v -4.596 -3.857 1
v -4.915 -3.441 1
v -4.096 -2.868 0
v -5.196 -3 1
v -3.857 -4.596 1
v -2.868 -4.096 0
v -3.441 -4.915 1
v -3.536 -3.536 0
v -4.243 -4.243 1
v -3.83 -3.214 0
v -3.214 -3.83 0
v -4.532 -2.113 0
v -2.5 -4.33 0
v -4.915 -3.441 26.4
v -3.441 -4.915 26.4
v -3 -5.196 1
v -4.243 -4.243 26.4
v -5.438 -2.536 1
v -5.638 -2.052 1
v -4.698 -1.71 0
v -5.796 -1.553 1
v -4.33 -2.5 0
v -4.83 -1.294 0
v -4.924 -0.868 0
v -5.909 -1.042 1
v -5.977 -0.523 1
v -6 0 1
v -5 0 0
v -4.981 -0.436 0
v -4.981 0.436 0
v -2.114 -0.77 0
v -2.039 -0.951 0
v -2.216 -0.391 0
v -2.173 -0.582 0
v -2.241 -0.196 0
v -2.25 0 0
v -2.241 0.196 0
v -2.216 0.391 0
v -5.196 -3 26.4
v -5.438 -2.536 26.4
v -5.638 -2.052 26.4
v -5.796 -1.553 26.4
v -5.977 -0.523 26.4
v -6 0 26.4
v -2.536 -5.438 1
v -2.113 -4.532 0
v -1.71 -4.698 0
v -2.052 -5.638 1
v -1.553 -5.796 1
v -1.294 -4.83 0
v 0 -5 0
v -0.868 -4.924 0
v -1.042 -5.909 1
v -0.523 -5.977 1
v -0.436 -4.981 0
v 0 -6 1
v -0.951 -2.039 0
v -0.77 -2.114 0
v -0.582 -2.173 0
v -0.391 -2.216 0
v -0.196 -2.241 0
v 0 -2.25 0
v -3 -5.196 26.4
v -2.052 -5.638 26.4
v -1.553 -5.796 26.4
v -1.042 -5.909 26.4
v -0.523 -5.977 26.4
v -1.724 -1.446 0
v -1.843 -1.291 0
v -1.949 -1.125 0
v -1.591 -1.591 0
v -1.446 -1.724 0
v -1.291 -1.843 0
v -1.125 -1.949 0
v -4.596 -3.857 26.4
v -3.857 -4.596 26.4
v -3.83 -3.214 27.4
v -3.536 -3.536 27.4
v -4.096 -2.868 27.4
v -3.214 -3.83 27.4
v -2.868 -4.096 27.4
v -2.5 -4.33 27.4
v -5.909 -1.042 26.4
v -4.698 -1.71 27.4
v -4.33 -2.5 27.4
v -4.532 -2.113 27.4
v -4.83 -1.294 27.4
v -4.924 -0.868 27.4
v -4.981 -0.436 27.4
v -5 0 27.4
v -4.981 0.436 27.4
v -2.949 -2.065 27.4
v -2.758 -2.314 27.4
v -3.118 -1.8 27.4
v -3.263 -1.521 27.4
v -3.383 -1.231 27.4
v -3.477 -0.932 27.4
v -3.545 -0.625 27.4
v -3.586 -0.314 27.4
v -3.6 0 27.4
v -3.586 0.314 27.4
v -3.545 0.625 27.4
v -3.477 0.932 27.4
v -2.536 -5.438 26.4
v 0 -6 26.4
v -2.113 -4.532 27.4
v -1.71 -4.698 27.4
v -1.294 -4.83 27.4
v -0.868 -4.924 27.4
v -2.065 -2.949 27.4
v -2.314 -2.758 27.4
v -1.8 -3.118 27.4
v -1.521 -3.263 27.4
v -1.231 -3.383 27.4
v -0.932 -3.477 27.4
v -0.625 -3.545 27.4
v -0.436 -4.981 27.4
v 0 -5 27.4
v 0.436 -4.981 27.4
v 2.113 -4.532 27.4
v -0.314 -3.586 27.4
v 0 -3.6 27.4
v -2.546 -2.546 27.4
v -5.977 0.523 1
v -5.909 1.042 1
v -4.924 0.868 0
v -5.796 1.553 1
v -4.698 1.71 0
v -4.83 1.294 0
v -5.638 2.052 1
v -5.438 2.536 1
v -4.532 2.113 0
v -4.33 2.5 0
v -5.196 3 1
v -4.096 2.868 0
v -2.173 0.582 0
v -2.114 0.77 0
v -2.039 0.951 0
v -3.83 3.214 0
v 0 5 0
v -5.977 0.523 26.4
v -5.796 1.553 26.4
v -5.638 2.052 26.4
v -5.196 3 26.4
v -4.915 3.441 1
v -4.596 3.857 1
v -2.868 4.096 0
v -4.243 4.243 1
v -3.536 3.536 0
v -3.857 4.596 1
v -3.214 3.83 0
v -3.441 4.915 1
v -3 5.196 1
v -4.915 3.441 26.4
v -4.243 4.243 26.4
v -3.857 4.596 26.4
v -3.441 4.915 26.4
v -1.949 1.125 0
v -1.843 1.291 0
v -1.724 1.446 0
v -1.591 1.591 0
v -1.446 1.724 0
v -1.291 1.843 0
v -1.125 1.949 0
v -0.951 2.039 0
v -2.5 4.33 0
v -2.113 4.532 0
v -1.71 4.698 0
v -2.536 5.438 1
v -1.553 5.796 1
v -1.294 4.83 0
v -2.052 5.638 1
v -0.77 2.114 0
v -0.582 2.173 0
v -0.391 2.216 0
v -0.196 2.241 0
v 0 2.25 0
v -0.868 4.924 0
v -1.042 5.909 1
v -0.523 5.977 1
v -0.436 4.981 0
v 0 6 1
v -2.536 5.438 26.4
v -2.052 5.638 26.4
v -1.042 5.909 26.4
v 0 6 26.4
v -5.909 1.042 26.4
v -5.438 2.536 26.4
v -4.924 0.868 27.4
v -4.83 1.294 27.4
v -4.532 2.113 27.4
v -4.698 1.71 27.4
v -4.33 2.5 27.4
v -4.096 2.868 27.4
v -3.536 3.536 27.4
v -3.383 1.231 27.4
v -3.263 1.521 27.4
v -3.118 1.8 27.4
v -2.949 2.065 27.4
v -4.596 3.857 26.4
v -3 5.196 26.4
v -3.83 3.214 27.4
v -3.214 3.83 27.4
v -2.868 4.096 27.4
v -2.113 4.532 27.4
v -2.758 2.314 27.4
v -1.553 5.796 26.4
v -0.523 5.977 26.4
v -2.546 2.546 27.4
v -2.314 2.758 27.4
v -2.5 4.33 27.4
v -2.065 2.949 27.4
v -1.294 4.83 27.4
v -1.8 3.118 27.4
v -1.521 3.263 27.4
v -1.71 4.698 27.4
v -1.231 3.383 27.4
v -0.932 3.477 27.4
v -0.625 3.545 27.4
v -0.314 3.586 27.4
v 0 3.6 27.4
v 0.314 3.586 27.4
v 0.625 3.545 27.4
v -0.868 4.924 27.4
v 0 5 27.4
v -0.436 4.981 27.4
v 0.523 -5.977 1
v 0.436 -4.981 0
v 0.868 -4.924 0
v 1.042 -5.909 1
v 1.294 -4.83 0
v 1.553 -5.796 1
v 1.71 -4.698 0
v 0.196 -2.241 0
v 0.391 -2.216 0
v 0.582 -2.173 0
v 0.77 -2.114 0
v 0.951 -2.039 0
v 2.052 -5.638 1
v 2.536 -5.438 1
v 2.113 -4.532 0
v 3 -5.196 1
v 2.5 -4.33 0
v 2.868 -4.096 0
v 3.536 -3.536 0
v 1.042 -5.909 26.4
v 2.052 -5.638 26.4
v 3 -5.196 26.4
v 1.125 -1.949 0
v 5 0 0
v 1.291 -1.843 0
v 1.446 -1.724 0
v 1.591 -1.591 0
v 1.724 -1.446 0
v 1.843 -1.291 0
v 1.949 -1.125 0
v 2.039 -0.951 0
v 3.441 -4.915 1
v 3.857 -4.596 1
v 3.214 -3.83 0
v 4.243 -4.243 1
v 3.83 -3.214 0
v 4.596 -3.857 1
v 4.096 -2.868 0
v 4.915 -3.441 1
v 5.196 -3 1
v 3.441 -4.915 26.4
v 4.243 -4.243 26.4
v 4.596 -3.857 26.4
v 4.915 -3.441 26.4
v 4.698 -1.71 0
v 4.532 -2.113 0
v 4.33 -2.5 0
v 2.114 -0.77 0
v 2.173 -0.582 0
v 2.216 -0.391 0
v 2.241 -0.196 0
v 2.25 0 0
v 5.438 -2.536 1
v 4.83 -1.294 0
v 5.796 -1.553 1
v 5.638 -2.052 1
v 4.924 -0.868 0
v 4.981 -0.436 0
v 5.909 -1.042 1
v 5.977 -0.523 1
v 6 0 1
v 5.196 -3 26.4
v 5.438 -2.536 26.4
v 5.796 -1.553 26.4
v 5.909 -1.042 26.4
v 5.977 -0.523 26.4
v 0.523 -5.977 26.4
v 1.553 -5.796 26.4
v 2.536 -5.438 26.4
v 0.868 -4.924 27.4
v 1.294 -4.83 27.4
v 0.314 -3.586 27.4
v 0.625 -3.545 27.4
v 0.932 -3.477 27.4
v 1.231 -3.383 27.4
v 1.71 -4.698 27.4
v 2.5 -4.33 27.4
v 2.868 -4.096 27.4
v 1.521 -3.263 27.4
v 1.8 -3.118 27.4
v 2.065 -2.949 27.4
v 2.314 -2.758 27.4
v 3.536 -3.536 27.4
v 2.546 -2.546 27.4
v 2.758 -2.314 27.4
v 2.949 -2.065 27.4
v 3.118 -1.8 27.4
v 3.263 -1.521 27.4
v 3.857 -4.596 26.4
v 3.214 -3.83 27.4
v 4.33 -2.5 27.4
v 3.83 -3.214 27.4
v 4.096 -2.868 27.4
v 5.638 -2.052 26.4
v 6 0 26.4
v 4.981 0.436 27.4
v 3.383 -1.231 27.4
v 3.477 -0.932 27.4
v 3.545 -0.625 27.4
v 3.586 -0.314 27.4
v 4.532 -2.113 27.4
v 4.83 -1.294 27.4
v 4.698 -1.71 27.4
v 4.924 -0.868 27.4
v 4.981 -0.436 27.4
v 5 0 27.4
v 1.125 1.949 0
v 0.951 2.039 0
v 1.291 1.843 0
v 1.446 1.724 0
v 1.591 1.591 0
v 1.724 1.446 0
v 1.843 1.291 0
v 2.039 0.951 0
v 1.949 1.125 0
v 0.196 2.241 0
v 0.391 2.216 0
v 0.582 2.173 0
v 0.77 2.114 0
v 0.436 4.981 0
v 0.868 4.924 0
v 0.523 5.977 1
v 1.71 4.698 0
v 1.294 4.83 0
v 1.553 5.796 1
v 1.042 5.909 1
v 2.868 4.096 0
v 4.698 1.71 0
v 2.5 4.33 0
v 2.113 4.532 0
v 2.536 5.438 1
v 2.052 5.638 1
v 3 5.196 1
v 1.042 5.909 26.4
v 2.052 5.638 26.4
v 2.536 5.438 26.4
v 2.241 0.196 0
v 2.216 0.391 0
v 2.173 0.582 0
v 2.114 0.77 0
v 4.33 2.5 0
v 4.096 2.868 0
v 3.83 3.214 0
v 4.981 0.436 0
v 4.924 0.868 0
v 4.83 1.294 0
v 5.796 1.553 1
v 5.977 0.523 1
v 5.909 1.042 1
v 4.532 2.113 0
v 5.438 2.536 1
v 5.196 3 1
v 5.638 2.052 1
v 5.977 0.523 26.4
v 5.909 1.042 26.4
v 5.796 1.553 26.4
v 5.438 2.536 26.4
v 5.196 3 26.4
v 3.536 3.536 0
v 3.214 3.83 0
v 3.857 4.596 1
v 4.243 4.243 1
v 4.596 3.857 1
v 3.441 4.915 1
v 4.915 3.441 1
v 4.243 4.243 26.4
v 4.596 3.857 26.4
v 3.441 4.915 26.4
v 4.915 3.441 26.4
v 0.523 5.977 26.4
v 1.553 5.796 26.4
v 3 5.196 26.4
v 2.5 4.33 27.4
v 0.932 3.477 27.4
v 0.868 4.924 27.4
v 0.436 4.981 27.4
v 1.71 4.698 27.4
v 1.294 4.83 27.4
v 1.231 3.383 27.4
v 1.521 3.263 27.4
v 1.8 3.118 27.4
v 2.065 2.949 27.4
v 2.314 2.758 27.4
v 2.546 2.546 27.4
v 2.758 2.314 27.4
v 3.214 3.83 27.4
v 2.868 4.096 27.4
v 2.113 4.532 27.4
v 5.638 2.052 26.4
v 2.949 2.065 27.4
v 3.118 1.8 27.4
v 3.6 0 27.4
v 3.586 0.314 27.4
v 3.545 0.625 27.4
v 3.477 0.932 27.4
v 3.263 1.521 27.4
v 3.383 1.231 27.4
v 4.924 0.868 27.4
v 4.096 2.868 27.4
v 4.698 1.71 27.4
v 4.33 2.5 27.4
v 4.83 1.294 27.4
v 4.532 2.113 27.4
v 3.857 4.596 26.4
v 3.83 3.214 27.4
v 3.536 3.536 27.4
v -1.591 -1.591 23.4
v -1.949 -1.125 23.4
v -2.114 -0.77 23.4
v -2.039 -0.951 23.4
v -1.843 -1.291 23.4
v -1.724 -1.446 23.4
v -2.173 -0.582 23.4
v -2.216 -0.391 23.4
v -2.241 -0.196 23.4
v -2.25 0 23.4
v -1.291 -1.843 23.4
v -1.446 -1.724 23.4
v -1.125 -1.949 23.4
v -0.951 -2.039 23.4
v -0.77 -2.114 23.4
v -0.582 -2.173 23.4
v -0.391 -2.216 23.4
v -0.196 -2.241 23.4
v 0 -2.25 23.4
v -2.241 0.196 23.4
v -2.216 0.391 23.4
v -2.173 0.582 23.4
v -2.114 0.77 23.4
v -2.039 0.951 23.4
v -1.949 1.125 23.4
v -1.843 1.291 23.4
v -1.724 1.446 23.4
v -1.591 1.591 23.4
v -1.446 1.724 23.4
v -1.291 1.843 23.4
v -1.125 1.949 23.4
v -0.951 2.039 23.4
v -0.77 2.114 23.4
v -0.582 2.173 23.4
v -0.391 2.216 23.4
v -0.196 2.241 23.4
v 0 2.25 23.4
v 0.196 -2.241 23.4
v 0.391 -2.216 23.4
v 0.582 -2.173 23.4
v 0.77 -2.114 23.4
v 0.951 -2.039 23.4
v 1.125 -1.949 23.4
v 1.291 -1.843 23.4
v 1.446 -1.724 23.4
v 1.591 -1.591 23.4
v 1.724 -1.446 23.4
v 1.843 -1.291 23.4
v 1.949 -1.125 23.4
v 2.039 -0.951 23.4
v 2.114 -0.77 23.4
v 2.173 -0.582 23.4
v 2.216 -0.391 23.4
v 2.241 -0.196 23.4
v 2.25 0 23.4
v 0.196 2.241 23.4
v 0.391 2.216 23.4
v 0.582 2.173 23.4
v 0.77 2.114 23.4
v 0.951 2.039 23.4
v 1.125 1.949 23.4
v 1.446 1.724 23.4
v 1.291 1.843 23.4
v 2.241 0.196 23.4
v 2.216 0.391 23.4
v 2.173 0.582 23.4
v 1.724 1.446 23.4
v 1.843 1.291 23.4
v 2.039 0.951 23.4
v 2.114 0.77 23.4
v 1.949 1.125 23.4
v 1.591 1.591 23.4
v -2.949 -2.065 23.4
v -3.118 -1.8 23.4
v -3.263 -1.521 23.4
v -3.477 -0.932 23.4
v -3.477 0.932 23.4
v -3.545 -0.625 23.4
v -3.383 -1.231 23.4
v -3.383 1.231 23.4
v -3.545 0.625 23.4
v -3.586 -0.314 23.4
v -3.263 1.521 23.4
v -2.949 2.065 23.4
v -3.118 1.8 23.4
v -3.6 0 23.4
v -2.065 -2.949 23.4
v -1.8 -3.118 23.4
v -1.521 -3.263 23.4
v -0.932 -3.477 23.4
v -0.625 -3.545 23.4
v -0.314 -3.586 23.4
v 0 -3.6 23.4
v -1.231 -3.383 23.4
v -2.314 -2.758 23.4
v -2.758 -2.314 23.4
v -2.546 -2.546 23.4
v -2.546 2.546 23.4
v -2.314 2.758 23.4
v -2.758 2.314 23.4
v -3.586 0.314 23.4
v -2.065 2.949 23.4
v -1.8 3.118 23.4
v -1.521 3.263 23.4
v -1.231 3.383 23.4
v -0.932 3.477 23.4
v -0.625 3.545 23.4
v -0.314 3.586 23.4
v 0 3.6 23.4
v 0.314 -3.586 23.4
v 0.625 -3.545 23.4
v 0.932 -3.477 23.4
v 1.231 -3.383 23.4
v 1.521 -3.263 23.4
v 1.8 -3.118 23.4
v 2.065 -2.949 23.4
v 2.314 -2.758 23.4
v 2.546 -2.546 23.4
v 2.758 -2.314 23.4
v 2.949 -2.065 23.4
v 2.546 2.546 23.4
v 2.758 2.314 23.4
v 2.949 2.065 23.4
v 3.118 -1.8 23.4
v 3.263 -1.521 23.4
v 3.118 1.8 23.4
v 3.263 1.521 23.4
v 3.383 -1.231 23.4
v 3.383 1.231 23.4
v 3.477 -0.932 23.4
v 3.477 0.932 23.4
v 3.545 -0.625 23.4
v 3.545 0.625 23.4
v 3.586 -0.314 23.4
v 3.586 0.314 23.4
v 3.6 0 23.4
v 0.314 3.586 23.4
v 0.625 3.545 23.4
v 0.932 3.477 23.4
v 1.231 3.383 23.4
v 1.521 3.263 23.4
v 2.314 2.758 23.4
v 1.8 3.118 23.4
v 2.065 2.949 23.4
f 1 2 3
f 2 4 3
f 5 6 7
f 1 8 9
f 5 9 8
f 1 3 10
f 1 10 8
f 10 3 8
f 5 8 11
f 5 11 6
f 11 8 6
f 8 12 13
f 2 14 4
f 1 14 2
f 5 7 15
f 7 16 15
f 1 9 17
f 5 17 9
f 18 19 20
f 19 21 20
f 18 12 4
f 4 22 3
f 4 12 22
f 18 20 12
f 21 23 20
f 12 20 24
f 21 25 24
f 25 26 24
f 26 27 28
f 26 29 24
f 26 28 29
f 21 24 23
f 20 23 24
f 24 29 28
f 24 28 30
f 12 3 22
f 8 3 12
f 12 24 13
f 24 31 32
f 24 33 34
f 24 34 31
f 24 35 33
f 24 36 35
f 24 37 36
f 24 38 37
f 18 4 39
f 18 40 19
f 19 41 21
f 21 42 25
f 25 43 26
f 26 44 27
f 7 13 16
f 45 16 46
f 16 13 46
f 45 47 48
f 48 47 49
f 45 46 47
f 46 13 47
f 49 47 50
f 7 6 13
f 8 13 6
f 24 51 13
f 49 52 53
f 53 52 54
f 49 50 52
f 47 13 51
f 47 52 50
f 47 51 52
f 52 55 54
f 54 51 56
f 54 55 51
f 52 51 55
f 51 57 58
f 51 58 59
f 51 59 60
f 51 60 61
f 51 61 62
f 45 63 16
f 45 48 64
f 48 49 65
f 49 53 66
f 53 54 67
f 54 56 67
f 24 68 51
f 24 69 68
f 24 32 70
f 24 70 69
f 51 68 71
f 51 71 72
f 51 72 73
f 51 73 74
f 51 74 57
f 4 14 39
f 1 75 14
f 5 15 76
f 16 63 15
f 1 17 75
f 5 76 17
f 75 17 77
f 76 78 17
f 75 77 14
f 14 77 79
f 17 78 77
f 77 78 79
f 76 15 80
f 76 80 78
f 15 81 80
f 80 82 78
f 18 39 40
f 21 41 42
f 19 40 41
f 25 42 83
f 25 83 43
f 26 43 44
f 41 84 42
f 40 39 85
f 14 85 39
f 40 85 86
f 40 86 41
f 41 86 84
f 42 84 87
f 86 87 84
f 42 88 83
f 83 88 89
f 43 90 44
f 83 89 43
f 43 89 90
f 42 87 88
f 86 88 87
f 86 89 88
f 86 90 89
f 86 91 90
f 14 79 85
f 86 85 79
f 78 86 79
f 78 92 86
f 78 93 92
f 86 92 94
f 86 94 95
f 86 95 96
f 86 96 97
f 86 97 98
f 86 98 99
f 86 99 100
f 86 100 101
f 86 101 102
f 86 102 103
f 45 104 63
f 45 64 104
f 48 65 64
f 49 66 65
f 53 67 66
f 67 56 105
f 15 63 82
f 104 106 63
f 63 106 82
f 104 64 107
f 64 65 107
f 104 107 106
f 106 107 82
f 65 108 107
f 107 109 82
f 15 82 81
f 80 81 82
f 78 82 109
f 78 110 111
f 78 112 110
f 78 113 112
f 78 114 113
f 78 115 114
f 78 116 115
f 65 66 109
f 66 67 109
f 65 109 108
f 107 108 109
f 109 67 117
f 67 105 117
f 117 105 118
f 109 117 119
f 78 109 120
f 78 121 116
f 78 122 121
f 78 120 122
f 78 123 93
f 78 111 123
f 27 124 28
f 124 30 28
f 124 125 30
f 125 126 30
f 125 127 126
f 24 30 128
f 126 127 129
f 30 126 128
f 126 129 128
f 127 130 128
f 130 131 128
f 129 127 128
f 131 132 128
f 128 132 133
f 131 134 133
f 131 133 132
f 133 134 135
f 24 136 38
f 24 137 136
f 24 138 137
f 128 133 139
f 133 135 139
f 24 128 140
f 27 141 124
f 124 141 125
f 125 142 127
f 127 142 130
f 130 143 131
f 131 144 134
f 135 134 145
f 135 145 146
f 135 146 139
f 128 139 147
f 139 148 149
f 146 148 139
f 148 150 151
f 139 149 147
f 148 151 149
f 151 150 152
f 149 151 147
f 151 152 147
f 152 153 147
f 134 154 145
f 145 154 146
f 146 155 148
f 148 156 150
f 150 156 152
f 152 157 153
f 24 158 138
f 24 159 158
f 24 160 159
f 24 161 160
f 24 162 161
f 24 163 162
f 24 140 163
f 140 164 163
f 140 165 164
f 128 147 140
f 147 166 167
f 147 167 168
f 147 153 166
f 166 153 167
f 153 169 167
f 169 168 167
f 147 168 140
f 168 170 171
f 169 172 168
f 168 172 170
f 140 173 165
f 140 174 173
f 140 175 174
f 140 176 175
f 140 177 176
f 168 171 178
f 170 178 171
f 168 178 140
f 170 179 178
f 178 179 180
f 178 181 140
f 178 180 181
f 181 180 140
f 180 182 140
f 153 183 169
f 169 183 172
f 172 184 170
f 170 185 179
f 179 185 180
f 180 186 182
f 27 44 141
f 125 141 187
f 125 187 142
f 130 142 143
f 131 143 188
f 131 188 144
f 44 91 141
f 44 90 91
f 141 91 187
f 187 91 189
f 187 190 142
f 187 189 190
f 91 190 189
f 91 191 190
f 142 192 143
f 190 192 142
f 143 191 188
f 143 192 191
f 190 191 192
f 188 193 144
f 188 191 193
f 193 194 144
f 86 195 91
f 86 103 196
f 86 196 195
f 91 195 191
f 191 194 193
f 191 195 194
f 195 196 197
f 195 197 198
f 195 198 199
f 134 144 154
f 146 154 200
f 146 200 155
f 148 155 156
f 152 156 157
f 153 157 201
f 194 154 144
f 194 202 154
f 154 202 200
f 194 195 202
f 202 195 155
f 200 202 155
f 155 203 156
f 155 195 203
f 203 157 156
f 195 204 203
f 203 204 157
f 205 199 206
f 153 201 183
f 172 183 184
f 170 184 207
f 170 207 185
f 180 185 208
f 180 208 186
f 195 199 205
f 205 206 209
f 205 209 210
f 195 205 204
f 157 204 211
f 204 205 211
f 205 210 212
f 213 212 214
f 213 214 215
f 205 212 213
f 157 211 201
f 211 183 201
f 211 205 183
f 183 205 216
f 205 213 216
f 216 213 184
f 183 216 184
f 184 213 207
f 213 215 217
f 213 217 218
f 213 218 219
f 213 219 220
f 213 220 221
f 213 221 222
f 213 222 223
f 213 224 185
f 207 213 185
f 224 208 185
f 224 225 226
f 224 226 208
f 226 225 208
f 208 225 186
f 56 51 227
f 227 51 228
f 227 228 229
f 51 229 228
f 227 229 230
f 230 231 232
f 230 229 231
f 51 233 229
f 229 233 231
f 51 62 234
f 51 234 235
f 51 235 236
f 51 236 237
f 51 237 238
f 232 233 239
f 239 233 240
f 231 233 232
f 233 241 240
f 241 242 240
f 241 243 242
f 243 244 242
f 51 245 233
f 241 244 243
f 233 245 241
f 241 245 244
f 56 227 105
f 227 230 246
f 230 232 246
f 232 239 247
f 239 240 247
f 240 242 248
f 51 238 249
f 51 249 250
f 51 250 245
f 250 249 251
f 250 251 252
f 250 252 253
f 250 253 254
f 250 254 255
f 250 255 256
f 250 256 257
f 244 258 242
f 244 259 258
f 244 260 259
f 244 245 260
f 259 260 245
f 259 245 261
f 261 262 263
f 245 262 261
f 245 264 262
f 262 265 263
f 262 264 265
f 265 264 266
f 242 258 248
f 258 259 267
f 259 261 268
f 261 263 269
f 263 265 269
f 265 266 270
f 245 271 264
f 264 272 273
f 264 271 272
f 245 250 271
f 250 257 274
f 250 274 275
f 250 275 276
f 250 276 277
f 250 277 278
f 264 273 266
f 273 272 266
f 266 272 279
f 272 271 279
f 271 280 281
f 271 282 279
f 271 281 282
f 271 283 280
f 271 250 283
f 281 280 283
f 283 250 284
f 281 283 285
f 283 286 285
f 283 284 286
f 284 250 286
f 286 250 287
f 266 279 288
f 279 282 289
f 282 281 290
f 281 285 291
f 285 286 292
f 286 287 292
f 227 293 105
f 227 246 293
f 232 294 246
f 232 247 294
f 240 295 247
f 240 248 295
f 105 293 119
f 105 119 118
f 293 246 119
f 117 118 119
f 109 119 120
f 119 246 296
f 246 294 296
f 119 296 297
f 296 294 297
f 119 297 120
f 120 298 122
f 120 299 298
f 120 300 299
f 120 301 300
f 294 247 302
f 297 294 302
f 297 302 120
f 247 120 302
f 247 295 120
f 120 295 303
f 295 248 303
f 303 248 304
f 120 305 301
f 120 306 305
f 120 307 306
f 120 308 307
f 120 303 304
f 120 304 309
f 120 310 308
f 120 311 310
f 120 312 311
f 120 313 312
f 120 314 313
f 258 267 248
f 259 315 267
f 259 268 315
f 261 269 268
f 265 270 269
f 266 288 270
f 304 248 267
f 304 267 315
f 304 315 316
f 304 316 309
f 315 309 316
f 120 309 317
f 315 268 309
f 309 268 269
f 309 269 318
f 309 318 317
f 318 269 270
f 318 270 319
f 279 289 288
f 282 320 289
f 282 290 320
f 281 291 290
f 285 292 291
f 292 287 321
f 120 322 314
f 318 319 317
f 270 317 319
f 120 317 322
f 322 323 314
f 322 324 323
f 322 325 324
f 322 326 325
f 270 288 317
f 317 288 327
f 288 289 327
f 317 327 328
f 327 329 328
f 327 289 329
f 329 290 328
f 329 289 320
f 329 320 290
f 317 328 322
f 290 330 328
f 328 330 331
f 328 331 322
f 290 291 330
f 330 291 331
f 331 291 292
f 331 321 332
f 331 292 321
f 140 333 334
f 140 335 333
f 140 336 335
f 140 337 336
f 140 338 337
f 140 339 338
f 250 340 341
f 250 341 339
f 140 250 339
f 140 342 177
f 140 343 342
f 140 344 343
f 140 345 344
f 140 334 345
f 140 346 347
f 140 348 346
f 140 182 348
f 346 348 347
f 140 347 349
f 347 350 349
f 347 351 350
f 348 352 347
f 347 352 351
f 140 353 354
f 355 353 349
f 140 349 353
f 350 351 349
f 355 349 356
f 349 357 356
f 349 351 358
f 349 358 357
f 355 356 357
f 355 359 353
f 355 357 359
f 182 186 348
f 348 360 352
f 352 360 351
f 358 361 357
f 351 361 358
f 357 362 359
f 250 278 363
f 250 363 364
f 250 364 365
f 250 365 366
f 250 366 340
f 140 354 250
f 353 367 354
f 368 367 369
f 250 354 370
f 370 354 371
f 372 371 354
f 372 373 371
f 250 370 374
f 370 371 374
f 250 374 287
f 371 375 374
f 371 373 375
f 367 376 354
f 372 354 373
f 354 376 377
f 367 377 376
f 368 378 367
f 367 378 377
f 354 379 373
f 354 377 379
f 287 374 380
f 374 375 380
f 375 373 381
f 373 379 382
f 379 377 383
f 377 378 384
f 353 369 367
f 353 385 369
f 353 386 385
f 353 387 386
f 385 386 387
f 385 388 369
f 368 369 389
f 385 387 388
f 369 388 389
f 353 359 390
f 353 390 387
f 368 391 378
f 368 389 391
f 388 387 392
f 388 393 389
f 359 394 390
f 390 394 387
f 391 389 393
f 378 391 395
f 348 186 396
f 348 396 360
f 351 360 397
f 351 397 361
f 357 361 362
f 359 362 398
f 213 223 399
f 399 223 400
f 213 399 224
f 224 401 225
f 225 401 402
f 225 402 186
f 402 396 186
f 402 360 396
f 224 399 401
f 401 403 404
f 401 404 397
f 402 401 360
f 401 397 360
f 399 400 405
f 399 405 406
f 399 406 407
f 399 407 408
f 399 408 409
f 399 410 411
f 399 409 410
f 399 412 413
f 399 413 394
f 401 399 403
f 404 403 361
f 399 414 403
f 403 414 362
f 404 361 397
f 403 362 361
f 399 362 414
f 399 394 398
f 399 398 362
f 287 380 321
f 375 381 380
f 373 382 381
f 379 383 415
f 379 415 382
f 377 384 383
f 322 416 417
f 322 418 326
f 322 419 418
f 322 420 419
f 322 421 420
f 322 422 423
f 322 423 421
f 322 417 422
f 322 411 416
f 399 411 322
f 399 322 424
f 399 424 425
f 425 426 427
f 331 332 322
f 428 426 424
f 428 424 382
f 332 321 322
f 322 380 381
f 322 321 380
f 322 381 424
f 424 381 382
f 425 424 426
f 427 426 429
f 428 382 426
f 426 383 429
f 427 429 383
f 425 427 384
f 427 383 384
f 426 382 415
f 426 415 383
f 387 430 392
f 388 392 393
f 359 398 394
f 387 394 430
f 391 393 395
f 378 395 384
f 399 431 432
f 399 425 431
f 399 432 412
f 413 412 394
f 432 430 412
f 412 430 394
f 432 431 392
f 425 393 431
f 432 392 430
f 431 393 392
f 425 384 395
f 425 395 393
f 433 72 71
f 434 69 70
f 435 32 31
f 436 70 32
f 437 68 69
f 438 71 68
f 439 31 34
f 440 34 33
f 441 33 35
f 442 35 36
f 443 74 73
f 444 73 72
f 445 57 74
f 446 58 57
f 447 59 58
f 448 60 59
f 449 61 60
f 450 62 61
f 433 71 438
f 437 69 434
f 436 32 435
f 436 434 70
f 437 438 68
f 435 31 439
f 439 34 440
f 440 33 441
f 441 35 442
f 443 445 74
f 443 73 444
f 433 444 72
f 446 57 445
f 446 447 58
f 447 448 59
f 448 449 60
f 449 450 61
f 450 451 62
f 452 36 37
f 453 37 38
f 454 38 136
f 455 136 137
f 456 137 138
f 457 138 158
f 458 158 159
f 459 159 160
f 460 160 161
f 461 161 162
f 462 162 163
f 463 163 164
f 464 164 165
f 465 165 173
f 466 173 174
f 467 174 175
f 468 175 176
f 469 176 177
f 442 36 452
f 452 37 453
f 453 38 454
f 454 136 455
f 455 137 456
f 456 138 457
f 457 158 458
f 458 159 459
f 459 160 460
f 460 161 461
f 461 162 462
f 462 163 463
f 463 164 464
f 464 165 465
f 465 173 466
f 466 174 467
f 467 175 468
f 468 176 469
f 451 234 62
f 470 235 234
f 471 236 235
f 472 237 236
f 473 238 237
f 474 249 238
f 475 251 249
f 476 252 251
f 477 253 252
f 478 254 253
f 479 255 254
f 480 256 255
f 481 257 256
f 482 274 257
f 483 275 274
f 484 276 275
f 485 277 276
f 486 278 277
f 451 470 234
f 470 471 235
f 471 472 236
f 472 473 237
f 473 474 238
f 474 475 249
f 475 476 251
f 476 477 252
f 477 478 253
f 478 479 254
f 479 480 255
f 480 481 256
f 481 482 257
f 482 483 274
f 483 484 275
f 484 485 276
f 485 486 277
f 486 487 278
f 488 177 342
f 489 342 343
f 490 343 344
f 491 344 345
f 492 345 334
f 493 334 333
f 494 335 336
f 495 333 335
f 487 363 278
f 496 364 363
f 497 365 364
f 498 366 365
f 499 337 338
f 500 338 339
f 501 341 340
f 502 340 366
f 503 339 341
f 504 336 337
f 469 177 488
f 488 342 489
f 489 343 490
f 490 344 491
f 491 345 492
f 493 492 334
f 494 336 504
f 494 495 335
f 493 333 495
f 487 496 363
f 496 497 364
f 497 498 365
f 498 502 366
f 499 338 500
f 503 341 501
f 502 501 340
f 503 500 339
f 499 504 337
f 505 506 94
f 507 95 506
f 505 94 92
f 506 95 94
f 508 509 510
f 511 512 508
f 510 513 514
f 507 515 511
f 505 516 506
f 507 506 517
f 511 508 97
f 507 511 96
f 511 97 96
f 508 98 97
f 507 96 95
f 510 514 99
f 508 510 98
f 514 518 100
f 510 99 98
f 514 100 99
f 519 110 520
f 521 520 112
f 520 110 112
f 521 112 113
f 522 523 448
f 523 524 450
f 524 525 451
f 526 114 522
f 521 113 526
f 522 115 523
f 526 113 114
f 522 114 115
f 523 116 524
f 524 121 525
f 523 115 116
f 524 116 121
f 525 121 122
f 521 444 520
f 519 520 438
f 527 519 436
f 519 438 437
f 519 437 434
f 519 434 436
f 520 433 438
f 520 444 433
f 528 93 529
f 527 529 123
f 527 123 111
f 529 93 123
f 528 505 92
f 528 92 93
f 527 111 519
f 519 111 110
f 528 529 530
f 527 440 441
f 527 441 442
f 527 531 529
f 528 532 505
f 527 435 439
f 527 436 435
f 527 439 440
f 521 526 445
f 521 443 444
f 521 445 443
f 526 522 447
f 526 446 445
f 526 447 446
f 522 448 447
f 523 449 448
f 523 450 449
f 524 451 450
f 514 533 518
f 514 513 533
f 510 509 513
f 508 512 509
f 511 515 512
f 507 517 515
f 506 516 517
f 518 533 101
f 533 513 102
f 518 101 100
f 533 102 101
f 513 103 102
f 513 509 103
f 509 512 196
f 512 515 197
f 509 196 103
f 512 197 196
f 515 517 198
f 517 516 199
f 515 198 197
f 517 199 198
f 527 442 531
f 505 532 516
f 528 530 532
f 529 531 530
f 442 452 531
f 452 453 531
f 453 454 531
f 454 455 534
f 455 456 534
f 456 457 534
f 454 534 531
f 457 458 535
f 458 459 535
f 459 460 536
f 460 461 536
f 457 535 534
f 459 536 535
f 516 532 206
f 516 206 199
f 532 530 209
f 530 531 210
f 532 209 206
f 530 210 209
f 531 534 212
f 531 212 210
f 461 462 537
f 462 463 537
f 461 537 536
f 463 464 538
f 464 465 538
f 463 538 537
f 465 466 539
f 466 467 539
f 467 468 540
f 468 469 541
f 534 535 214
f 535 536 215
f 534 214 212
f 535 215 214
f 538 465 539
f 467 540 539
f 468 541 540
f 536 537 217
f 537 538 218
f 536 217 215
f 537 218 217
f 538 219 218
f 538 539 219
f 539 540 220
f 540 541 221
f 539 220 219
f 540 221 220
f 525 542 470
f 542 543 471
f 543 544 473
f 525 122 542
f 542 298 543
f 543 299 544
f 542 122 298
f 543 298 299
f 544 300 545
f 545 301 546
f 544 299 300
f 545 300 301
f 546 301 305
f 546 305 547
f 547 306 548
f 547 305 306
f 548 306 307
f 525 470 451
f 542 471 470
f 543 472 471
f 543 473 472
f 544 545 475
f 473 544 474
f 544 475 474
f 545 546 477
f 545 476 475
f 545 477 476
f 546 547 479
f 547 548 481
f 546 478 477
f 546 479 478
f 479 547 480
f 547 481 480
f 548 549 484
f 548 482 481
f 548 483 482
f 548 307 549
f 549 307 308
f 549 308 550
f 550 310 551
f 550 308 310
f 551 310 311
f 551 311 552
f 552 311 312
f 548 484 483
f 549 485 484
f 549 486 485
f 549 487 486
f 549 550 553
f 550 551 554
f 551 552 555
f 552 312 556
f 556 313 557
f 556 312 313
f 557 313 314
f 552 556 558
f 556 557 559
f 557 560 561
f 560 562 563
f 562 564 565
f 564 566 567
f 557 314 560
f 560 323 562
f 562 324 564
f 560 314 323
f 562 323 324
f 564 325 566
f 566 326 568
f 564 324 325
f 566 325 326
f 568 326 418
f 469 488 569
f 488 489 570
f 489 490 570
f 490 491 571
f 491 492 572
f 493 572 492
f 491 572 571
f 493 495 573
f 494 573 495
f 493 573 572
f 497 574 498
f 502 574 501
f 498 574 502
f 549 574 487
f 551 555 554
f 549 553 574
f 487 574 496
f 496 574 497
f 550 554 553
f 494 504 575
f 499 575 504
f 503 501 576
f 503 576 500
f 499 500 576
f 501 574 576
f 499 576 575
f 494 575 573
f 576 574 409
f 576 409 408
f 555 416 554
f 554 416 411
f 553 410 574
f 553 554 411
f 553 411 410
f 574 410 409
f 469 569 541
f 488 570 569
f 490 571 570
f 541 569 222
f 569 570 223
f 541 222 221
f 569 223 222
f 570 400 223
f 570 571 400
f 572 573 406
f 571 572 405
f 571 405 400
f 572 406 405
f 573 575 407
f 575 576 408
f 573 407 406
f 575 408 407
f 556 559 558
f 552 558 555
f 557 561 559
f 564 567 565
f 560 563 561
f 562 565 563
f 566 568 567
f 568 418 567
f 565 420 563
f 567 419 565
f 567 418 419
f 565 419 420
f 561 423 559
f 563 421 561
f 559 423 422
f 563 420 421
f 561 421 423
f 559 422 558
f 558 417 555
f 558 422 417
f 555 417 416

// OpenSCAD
// ============================================================================
// CyberWing — Nano->Orin spacer column, 8-32 version  (print 4, PLA)
// 27.4 mm tall, through-hole sized for a #8-32 screw, head counterbored at top.
// ============================================================================
$fn = 72;

H      = 27.4;   // column height
OD     = 12;     // outer diameter
HOLE   = 4.5;    // #8-32 clearance through-hole (major Ø 4.17)
CB_D   = 7.2;    // counterbore for the #8-32 head (socket cap ~6.4)
CB_H   = 4.0;    // counterbore depth
CHAM   = 1.0;    // top/bottom edge chamfer

module column() {
  difference() {
    hull() {
      translate([0,0,CHAM])      cylinder(d=OD, h=H-2*CHAM);
      cylinder(d1=OD-2*CHAM, d2=OD, h=CHAM);
      translate([0,0,H-CHAM])    cylinder(d1=OD, d2=OD-2*CHAM, h=CHAM);
    }
    translate([0,0,-0.1]) cylinder(d=HOLE, h=H+0.2);          // #8-32 through-hole
    translate([0,0,H-CB_H]) cylinder(d=CB_D, h=CB_H+0.1);     // top counterbore (head)
  }
}

column();
